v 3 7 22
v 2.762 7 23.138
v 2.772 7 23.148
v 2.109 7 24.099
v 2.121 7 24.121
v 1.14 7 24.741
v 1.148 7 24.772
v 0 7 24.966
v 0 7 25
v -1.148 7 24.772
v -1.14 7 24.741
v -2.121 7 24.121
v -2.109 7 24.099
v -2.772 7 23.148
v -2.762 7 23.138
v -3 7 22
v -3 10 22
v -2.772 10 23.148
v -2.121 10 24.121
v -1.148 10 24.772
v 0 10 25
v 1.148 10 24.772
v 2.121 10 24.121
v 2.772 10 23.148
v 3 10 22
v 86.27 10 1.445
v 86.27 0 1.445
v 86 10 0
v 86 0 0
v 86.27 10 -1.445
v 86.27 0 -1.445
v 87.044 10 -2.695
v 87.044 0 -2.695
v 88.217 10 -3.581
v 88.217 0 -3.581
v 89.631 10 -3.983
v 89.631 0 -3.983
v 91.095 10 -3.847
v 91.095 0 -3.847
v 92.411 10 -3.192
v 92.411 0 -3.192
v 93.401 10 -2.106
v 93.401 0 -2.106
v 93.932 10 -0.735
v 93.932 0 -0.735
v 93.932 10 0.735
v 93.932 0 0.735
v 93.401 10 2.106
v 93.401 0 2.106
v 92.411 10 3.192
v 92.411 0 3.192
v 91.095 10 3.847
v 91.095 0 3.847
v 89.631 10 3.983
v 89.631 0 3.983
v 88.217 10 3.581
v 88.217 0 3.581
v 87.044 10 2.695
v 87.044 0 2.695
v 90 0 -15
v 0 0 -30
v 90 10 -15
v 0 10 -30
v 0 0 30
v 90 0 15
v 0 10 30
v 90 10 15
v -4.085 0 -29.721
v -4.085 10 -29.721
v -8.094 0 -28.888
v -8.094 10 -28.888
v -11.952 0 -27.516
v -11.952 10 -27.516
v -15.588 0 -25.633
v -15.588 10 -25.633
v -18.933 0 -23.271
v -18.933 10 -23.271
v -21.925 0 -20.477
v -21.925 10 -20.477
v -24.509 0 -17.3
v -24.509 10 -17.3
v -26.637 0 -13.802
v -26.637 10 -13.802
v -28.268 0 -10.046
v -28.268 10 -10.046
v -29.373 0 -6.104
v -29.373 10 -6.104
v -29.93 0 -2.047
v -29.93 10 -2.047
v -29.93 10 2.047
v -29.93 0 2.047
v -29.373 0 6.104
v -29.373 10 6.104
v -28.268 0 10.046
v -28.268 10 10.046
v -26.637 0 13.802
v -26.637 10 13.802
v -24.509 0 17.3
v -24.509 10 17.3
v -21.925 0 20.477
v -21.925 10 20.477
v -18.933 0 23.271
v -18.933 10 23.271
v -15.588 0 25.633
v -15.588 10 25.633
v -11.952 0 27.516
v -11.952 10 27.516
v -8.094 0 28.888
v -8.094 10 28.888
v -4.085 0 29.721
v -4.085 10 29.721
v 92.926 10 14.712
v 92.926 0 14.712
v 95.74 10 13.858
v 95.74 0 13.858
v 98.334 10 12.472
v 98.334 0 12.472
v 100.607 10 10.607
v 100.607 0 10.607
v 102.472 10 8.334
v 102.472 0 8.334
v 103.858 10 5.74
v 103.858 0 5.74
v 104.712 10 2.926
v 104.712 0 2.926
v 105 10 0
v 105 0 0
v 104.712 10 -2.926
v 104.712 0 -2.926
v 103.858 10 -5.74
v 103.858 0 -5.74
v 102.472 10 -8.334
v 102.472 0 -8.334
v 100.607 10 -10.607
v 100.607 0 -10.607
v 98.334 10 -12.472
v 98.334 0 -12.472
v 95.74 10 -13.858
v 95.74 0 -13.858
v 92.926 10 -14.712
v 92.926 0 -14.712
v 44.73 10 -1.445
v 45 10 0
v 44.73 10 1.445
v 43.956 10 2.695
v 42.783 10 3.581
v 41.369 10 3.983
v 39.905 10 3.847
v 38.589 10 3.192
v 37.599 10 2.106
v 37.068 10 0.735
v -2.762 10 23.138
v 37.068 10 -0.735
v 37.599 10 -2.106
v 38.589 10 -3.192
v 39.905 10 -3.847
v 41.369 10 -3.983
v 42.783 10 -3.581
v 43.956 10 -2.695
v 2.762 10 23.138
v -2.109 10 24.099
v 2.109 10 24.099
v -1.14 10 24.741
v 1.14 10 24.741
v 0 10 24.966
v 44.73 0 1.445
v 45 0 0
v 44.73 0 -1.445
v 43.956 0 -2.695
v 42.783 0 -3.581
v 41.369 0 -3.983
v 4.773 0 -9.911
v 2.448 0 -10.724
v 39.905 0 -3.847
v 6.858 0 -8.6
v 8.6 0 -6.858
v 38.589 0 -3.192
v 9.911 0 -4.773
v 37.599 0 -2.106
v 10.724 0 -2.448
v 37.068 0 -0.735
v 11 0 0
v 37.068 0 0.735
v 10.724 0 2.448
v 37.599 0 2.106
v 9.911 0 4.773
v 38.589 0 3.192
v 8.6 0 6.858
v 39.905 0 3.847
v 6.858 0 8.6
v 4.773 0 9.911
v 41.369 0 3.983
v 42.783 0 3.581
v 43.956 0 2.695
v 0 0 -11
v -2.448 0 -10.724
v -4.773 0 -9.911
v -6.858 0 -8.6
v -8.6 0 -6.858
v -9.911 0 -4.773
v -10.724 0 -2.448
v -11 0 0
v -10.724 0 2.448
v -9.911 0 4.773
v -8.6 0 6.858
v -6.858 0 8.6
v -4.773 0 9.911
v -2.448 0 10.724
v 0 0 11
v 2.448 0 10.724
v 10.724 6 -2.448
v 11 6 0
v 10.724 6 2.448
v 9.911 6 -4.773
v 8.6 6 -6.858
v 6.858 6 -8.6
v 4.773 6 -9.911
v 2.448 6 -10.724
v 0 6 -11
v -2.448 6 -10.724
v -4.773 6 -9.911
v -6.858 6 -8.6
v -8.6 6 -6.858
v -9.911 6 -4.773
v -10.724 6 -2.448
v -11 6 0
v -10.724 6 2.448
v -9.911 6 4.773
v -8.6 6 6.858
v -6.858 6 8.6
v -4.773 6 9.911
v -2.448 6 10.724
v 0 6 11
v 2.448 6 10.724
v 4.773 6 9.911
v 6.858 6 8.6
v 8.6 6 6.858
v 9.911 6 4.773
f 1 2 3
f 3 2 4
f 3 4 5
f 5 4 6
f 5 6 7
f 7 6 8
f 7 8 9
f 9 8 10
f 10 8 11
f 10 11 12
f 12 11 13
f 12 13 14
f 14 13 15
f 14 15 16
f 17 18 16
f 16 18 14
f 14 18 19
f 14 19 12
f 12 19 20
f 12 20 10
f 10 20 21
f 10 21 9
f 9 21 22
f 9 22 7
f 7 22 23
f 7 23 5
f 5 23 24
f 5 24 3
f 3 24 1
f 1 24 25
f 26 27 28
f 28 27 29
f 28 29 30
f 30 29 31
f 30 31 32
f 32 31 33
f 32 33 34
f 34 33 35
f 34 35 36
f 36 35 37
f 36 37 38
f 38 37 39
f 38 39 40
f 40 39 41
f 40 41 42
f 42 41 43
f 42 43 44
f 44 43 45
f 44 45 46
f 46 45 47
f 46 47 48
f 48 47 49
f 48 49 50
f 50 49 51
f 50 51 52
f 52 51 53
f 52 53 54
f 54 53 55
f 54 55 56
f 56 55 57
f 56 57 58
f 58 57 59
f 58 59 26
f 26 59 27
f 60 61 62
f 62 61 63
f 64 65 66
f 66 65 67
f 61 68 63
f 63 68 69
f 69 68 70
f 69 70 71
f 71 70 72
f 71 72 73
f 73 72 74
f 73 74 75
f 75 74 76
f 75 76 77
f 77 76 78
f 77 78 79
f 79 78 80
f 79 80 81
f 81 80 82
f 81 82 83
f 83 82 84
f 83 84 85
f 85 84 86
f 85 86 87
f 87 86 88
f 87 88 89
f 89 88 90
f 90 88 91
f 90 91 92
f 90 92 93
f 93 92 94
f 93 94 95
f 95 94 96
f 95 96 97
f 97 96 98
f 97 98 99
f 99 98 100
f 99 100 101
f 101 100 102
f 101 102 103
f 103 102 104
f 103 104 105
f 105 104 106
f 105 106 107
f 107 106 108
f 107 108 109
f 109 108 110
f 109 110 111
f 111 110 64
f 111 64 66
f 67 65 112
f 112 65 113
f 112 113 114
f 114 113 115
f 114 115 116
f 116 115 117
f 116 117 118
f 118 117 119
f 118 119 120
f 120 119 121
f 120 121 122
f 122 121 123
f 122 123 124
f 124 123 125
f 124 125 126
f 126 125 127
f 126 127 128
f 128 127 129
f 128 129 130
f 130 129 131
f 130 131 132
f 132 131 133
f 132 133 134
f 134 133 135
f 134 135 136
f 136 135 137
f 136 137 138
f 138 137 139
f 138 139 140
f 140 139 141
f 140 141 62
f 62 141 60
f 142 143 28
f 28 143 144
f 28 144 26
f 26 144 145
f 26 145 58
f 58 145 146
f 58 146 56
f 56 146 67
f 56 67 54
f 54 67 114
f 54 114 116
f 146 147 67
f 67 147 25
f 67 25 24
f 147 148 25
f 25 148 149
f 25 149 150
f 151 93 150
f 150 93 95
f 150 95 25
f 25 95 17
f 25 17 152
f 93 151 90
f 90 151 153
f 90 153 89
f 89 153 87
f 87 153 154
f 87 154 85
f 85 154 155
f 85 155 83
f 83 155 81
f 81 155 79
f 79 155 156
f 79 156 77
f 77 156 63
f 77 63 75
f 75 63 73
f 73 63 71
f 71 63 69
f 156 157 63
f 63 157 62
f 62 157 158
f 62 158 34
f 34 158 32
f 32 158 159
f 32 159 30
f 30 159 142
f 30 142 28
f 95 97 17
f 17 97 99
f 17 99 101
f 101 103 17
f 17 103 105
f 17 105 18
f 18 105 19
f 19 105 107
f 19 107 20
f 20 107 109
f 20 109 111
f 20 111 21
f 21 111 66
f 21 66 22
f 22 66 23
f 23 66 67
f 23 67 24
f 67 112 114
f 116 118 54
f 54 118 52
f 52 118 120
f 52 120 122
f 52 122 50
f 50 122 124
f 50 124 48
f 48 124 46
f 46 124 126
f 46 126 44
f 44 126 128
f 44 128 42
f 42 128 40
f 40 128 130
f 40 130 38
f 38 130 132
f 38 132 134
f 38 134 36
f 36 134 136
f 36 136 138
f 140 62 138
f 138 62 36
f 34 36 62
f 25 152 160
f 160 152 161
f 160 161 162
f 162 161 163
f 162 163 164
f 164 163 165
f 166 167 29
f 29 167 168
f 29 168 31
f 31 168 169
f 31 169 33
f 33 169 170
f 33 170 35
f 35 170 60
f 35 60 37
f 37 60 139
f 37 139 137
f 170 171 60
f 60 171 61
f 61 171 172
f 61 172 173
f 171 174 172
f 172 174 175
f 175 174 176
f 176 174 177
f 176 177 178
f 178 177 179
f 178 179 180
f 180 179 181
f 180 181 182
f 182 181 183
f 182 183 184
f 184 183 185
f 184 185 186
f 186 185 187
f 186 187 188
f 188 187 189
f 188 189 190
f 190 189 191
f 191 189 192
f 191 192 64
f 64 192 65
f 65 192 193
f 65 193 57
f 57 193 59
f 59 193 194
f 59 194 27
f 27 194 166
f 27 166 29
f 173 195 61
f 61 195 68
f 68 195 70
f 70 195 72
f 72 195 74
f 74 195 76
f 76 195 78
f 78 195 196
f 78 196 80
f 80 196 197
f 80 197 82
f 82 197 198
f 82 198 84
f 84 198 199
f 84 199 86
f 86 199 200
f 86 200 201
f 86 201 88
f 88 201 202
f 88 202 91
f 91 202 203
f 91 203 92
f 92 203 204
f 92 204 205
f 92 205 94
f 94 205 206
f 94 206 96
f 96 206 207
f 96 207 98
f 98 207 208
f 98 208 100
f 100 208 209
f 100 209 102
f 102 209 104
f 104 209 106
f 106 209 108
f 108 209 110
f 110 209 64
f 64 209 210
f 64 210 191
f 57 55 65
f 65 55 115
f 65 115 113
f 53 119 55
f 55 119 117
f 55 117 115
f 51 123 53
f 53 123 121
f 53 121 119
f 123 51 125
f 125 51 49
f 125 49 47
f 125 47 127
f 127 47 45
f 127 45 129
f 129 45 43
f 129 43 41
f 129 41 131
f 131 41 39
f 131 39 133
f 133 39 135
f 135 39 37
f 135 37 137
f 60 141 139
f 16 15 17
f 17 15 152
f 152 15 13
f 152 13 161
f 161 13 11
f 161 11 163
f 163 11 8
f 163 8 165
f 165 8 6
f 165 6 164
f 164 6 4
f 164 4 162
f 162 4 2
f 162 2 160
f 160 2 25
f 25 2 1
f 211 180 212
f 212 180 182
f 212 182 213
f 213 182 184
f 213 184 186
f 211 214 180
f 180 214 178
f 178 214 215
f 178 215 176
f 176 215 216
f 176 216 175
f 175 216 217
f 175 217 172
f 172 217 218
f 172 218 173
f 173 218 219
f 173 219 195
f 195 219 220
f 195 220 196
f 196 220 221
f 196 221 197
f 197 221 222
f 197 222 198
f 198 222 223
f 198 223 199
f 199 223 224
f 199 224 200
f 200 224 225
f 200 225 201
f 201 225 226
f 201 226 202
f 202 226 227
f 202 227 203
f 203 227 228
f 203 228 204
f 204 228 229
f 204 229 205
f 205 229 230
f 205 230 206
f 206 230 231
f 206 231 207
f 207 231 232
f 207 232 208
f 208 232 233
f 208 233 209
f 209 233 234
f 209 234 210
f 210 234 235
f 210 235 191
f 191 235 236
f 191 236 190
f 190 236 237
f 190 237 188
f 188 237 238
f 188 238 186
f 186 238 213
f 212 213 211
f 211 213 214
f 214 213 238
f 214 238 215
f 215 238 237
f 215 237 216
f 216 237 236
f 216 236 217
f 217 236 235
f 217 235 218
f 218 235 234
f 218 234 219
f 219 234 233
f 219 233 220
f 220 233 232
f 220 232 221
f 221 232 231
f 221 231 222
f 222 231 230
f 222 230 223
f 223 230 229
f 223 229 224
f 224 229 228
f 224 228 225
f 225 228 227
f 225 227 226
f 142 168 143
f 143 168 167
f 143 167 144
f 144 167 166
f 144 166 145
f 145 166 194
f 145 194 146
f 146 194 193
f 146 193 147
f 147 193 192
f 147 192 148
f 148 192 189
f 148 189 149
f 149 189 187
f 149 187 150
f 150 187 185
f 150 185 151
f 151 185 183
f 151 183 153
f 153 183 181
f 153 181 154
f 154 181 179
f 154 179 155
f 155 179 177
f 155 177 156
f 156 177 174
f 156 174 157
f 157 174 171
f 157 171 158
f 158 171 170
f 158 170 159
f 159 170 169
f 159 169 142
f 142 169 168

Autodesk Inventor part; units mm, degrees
ref_plane "YZ Plane" through (0, 0, 0) normal (1, 0, 0) x (0, 1, 0)
ref_plane "XZ Plane" through (0, 0, 0) normal (0, 1, 0) x (-1, 0, 0)
ref_plane "XY Plane" through (0, 0, 0) normal (0, 0, 1) x (1, 0, 0)
sketch "Sketch1" plane through (0, 0, 0) normal (0, 1, 0) x (-1, 0, 0)
  circle A0 centre (0, 0) radius 22
  line L0 (0, 0) -> (0, -22)
  circle A1 centre (0, -22) radius 1.55
  circle A2 centre (0, -22) radius 3
  circle A3 centre (22, 0) radius 3
  circle A4 centre (22, 0) radius 1.55
  circle A5 centre (0, 22) radius 3
  circle A6 centre (0, 22) radius 1.55
  circle A7 centre (-22, 0) radius 3
  circle A8 centre (-22, 0) radius 1.55
  circle A9 centre (0, 0) radius 30
  line L1 (0, 0) -> (-90, 0)
  circle A10 centre (-90, 0) radius 4
  circle A11 centre (-90, 0) radius 15
  line L2 (0, -30) -> (-90, -15)
  line L3 (0, 30) -> (-90, 15)
  circle A12 centre (0, 0) radius 5
  dimension "d0" = 44
  dimension "d1" = 3.1
  dimension "d2" = 6
  dimension "d5" = 360
  dimension "d7" = 60
  dimension "d8" = 90
  dimension "d9" = 8
  dimension "d10" = 30
  dimension "d11" = 10
extrude "Extrusion1" add sketch "Sketch1" along normal blind 10 contours A0 A4 | A0 A4 | A4 A0 A3 | A0 A3 A4 | A3 A0 A2 L0 A12 L1 A7 A5 | A5 A0 A6 | A0 A6 A5 | A2 A0 A1 | A0 A1 L0 A2 | A6 A0 | A0 A6 | A1 A0 | A0 L0 A1 | A2 A0 A7 L1 A12 L0 | L0 A1 A0 A2 | A7 L1 A8 A0 | A0 A8 L1 A7 | A0 A1 L0 | A8 L1 A0 | A0 L1 A8 | A7 A0 A8 L1 | L1 A8 A0 A7 | L1 A8 A0 | A0 A8 L1 | A9 L2 L3 | A9 L1 A11 L3 | L2 A11 L1 A9 | A11
sketch "Sketch2" plane through (0, 0, 0) normal (0, -1, 0) x (1, 0, 0)
  circle A0 centre (0, 22) radius 1.5
  circle A1 centre (0, -22) radius 1.5
  circle A2 centre (22, 0) radius 1.5
  circle A3 centre (-22, 0) radius 1.5
  point P0 (0, 0)
  dimension "d16" = 3
  dimension "d17" = 3
  dimension "d19" = 3
  dimension "d21" = 3
extrude "Extrusion2" cut sketch "Sketch2" against normal blind 10
sketch "Sketch3" plane through (0, 10, 0) normal (0, 1, 0) x (1, 0, 0)
  circle A0 centre (0, -22) radius 1.5 projected
  line L0 (0, 0) -> (0, -22)
  circle A1 centre (-22, 0) radius 1.5 projected
  line L1 (0, 0) -> (-22, 0)
  circle A2 centre (0, 22) radius 1.5 projected
  line L2 (0, 0) -> (0, 22)
  circle A3 centre (22, 0) radius 1.5 projected
  line L3 (0, 0) -> (22, 0)
  circle A4 centre (0, -22) radius 3
  circle A5 centre (22, 0) radius 3
  circle A6 centre (0, 22) radius 3
  circle A7 centre (-22, 0) radius 3
  dimension "d24" = 6
  dimension "d27" = 360
extrude "Extrusion3" cut sketch "Sketch3" against normal blind 3
sketch "Sketch4" plane through (0, 0, 0) normal (0, -1, 0) x (1, 0, 0)
  circle A0 centre (0, 0) radius 5 projected
  circle A1 centre (0, 0) radius 7
  point P0 (0, 0)
  dimension "d31" = 14
extrude "Extrusion4" cut sketch "Sketch4" against normal blind 2.5
sketch "Sketch5" plane through (0, 0, 0) normal (0, -1, 0) x (1, 0, 0)
  circle A0 centre (0, 0) radius 11
  dimension "d34" = 22
extrude "Extrusion5" cut sketch "Sketch5" against normal blind 6
sketch "Sketch6" plane through (0, 0, 0) normal (0, -1, 0) x (1, 0, 0)
  circle A0 centre (-22, 0) radius 1.5 projected
  circle A1 centre (-22, 0) radius 1.5
  circle A2 centre (0, 21.9657) radius 1.5343
  circle A3 centre (22, 0) radius 3 projected
  circle A4 centre (22, 0) radius 1.5
  circle A5 centre (0, -22) radius 1.5 projected
  circle A6 centre (0, -22) radius 1.5
  circle A7 centre (0, 0) radius 5
extrude "Extrusion6" cut sketch "Sketch6" against normal blind 10 contours A0 | A2 | A4 | A5
sketch "Sketch7" plane through (0, 10, 0) normal (0, 1, 0) x (1, 0, 0)
  circle A0 centre (0, 0) radius 11 projected
  circle A1 centre (0, 0) radius 5
  point P0 (0, 0)
extrude "Extrusion7" add sketch "Sketch7" against normal blind 4 contours A1
sketch "Sketch8" plane through (0, 10, 0) normal (0, 1, 0) x (1, 0, 0)
  circle A0 centre (0, 22) radius 1.5 projected
  circle A1 centre (0, 22) radius 3
  circle A2 centre (22, 0) radius 1.5 projected
  circle A3 centre (22, 0) radius 3
  circle A4 centre (0, -21.9657) radius 1.5343 projected
  circle A5 centre (0, -21.9657) radius 3.0002
  circle A6 centre (-22, 0) radius 1.5 projected
  circle A7 centre (-22, 0) radius 3
  point P0 (0, 0)
extrude "Extrusion8" add sketch "Sketch8" against normal blind 10 contours A0 | A1 | A2 | A3 | A4 | A5 | A6 | A7
sketch "Sketch9" plane through (0, 0, 0) normal (0, -1, 0) x (1, 0, 0)
  circle A0 centre (90, 0) radius 4 projected
  circle A1 centre (41, 0) radius 4
  point P0 (0, 0)
  dimension "d44" = 8
extrude "Extrusion9" cut sketch "Sketch9" against normal blind 32.25 contours A1
properties part number "motormount2"
